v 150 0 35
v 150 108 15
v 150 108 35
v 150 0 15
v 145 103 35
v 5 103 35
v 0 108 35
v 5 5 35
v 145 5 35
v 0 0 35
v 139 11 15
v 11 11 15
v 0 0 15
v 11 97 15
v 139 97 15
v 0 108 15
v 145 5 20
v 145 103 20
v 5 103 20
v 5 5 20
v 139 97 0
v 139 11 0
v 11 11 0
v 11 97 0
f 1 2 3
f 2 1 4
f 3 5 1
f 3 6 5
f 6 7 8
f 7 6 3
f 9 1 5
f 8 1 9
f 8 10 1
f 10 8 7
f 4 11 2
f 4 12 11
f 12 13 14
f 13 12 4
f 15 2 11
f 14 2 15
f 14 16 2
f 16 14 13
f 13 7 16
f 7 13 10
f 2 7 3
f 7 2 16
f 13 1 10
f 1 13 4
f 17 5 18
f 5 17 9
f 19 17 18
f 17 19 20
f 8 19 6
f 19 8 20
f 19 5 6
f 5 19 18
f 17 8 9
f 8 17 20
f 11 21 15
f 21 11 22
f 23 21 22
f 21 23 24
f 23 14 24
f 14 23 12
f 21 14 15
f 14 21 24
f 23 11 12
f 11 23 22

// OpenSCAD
// Generated by SolidPython 1.1.1 on 2021-06-21 14:27:26


union() {
	translate(v = [11.0, 0, 0]) {
		translate(v = [0, 11.0, 0]) {
			cube(size = [128, 86, 15]);
		}
	}
	difference() {
		color(alpha = 1.0000000000, c = "red") {
			translate(v = [0, 0, 15]) {
				cube(size = [150.0, 108.0, 20]);
			}
		}
		translate(v = [0, 0, 20]) {
			translate(v = [5, 0, 0]) {
				translate(v = [0, 5, 0]) {
					cube(size = [140.0, 98.0, 25.0]);
				}
			}
		}
	}
}
